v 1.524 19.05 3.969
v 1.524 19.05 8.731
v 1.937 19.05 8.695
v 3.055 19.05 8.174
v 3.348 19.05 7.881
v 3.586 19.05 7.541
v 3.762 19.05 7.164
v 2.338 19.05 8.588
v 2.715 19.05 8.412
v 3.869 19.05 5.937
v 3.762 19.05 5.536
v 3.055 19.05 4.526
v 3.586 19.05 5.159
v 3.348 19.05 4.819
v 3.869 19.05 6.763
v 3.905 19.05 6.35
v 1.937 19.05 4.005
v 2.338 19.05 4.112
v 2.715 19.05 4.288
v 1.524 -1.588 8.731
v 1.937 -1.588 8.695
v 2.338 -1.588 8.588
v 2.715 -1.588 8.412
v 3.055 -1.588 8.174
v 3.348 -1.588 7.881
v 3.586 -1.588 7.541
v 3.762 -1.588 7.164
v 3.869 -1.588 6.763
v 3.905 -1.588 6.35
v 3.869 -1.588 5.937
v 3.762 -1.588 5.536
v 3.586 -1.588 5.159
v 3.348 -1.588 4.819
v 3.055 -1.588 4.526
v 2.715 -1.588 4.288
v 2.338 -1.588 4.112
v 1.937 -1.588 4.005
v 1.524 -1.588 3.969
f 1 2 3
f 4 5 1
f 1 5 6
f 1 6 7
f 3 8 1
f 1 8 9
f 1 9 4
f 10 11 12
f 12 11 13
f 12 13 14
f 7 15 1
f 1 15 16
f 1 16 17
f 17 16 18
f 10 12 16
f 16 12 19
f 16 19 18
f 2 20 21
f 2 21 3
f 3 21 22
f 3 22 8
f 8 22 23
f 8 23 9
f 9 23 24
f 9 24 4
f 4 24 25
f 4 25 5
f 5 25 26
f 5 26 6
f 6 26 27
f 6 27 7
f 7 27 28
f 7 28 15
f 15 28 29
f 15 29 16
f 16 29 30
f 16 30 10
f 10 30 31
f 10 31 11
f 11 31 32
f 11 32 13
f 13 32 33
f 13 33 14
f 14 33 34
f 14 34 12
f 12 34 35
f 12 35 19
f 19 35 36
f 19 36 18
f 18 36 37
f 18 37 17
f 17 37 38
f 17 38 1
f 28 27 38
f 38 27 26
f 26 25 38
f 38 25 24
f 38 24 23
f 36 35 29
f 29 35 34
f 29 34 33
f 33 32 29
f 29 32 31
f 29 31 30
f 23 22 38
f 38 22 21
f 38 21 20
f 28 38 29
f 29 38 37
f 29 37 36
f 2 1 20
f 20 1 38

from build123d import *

# Parameters (mm, degrees)
SKETCH1_R           = 2.38125
BOSS_EXTRUDE1_DEPTH = 1.5875
SKETCH2_R           = 3.175
BOSS_EXTRUDE2_DEPTH = 1.5875
SKETCH3_R           = 2.38125
BOSS_EXTRUDE3_DEPTH = 19.05
SKETCH4_R           = 3.175
BOSS_EXTRUDE4_DEPTH = 1.5875
SKETCH5_R           = 2.38125
BOSS_EXTRUDE5_DEPTH = 1.5875
SKETCH9_W           = 27.857962544
SKETCH9_H           = 18.98631043
SKETCH9_R           = 2.38125
CUT_EXTRUDE4_DEPTH  = 28.662025878
SKETCH12_W          = 2.976246955
SKETCH12_H          = 4.951375607
CUT_EXTRUDE5_DEPTH  = 23.746254865


with BuildPart() as part:
    # Sketch1 → Boss-Extrude1 (new body)
    with BuildSketch(Plane(origin=(0, 0, 0), x_dir=(1, 0, 0), z_dir=(0, 1, 0))):
        with BuildLine():
            Line((9.398005644, 4.762076723), (-6.35, 4.7625))
            ThreePointArc((-6.35, 4.7625), (-11.020584629, 0.931152767), (-8.176363381, -4.398386414))
            ThreePointArc((-8.176363381, -4.398386414), (-5.292234705, -6.221263486), (-3.181508348, -8.901918869))
            ThreePointArc((-3.181508348, -8.901918869), (1.849687492, -11.693035316), (6.504625866, -8.311495529))
            ThreePointArc((6.504625866, -8.311495529), (8.146827792, -5.96033805), (10.67447942, -4.60544104))
            ThreePointArc((10.67447942, -4.60544104), (14.180390361, 0.643024113), (9.398005644, 4.762076723))
        make_face()
        with Locations(Location((-6.35, 0, 0), (0, 0, 270))):
            Circle(SKETCH1_R, mode=Mode.SUBTRACT)
        with Locations(Location((9.4615, 0, 0), (0, 0, 270))):
            Circle(SKETCH1_R, mode=Mode.SUBTRACT)
        with Locations(Location((1.524, -6.35, 0), (0, 0, 270))):
            Circle(SKETCH1_R, mode=Mode.SUBTRACT)
    extrude(amount=BOSS_EXTRUDE1_DEPTH)

    # Sketch2 → Boss-Extrude2 (add)
    with BuildSketch(Plane.XZ):
        with Locations(Location((1.524, 6.35, 0), (0, 0, 90))):
            Circle(SKETCH2_R)
    extrude(amount=BOSS_EXTRUDE2_DEPTH)

    # Sketch3 → Boss-Extrude3 (add)
    with BuildSketch(Plane(origin=(0, 0, 0), x_dir=(1, 0, 0), z_dir=(0, 1, 0))):
        with Locations(Location((1.524, -6.35, 0), (0, 0, 90))):
            Circle(SKETCH3_R)
    extrude(amount=BOSS_EXTRUDE3_DEPTH)

    # Sketch4 → Boss-Extrude4 (add)
    with BuildSketch(Plane(origin=(0, 19.05, 0), x_dir=(1, 0, 0), z_dir=(0, 1, 0))):
        with Locations(Location((1.524, -6.35, 0), (0, 0, 270))):
            Circle(SKETCH4_R)
    extrude(amount=-BOSS_EXTRUDE4_DEPTH)


with BuildPart() as body_2:
    # Sketch5 → Boss-Extrude5 (new body)
    with BuildSketch(Plane.XZ.offset(-17.4625)):
        with BuildLine():
            ThreePointArc((-8.176363381, 4.398386414), (-11.020584629, -0.931152767), (-6.35, -4.7625))
            Line((-6.35, -4.7625), (9.4615, -4.7625))
            ThreePointArc((9.4615, -4.7625), (14.184572051, -0.611552653), (10.67447942, 4.60544104))
            ThreePointArc((10.67447942, 4.60544104), (8.146827792, 5.96033805), (6.504625866, 8.311495529))
            ThreePointArc((6.504625866, 8.311495529), (1.849687492, 11.693035316), (-3.181508348, 8.901918869))
            ThreePointArc((-3.181508348, 8.901918869), (-5.292234705, 6.221263486), (-8.176363381, 4.398386414))
        make_face()
        with Locations(Location((-6.35, 0, 0), (0, 0, 90))):
            Circle(SKETCH5_R, mode=Mode.SUBTRACT)
        with Locations(Location((9.4615, 0, 0), (0, 0, 90))):
            Circle(SKETCH5_R, mode=Mode.SUBTRACT)
        with Locations(Location((1.524, 6.35, 0), (0, 0, 270))):
            Circle(SKETCH5_R, mode=Mode.SUBTRACT)
    extrude(amount=BOSS_EXTRUDE5_DEPTH)


with BuildPart() as cut_extrude4_tool:
    # Sketch9 → Cut-Extrude4 (new, through all)
    with BuildSketch(Plane.XZ.offset(1.5875)):
        with Locations((1.177973605, 3.738325546)):
            Rectangle(SKETCH9_W, SKETCH9_H)
        with Locations(Location((1.524, 6.35, 0), (0, 0, 270))):
            Circle(SKETCH9_R, mode=Mode.SUBTRACT)
    extrude(amount=-CUT_EXTRUDE4_DEPTH)


with BuildPart() as part_1:
    add(part.part)

    # Cut-Extrude4: cut by cut_extrude4_tool
    add(cut_extrude4_tool.part, mode=Mode.SUBTRACT)

    # Sketch12 → Cut-Extrude5 (cut, through all)
    with BuildSketch(Plane.XZ.offset(1.5875)):
        with Locations((0.035876522, 6.255562197)):
            Rectangle(SKETCH12_W, SKETCH12_H)
    extrude(amount=-CUT_EXTRUDE5_DEPTH, mode=Mode.SUBTRACT)


with BuildPart() as body_2_1:
    add(body_2.part)

    # Cut-Extrude4: cut by cut_extrude4_tool
    add(cut_extrude4_tool.part, mode=Mode.SUBTRACT)


solid = part_1.part
